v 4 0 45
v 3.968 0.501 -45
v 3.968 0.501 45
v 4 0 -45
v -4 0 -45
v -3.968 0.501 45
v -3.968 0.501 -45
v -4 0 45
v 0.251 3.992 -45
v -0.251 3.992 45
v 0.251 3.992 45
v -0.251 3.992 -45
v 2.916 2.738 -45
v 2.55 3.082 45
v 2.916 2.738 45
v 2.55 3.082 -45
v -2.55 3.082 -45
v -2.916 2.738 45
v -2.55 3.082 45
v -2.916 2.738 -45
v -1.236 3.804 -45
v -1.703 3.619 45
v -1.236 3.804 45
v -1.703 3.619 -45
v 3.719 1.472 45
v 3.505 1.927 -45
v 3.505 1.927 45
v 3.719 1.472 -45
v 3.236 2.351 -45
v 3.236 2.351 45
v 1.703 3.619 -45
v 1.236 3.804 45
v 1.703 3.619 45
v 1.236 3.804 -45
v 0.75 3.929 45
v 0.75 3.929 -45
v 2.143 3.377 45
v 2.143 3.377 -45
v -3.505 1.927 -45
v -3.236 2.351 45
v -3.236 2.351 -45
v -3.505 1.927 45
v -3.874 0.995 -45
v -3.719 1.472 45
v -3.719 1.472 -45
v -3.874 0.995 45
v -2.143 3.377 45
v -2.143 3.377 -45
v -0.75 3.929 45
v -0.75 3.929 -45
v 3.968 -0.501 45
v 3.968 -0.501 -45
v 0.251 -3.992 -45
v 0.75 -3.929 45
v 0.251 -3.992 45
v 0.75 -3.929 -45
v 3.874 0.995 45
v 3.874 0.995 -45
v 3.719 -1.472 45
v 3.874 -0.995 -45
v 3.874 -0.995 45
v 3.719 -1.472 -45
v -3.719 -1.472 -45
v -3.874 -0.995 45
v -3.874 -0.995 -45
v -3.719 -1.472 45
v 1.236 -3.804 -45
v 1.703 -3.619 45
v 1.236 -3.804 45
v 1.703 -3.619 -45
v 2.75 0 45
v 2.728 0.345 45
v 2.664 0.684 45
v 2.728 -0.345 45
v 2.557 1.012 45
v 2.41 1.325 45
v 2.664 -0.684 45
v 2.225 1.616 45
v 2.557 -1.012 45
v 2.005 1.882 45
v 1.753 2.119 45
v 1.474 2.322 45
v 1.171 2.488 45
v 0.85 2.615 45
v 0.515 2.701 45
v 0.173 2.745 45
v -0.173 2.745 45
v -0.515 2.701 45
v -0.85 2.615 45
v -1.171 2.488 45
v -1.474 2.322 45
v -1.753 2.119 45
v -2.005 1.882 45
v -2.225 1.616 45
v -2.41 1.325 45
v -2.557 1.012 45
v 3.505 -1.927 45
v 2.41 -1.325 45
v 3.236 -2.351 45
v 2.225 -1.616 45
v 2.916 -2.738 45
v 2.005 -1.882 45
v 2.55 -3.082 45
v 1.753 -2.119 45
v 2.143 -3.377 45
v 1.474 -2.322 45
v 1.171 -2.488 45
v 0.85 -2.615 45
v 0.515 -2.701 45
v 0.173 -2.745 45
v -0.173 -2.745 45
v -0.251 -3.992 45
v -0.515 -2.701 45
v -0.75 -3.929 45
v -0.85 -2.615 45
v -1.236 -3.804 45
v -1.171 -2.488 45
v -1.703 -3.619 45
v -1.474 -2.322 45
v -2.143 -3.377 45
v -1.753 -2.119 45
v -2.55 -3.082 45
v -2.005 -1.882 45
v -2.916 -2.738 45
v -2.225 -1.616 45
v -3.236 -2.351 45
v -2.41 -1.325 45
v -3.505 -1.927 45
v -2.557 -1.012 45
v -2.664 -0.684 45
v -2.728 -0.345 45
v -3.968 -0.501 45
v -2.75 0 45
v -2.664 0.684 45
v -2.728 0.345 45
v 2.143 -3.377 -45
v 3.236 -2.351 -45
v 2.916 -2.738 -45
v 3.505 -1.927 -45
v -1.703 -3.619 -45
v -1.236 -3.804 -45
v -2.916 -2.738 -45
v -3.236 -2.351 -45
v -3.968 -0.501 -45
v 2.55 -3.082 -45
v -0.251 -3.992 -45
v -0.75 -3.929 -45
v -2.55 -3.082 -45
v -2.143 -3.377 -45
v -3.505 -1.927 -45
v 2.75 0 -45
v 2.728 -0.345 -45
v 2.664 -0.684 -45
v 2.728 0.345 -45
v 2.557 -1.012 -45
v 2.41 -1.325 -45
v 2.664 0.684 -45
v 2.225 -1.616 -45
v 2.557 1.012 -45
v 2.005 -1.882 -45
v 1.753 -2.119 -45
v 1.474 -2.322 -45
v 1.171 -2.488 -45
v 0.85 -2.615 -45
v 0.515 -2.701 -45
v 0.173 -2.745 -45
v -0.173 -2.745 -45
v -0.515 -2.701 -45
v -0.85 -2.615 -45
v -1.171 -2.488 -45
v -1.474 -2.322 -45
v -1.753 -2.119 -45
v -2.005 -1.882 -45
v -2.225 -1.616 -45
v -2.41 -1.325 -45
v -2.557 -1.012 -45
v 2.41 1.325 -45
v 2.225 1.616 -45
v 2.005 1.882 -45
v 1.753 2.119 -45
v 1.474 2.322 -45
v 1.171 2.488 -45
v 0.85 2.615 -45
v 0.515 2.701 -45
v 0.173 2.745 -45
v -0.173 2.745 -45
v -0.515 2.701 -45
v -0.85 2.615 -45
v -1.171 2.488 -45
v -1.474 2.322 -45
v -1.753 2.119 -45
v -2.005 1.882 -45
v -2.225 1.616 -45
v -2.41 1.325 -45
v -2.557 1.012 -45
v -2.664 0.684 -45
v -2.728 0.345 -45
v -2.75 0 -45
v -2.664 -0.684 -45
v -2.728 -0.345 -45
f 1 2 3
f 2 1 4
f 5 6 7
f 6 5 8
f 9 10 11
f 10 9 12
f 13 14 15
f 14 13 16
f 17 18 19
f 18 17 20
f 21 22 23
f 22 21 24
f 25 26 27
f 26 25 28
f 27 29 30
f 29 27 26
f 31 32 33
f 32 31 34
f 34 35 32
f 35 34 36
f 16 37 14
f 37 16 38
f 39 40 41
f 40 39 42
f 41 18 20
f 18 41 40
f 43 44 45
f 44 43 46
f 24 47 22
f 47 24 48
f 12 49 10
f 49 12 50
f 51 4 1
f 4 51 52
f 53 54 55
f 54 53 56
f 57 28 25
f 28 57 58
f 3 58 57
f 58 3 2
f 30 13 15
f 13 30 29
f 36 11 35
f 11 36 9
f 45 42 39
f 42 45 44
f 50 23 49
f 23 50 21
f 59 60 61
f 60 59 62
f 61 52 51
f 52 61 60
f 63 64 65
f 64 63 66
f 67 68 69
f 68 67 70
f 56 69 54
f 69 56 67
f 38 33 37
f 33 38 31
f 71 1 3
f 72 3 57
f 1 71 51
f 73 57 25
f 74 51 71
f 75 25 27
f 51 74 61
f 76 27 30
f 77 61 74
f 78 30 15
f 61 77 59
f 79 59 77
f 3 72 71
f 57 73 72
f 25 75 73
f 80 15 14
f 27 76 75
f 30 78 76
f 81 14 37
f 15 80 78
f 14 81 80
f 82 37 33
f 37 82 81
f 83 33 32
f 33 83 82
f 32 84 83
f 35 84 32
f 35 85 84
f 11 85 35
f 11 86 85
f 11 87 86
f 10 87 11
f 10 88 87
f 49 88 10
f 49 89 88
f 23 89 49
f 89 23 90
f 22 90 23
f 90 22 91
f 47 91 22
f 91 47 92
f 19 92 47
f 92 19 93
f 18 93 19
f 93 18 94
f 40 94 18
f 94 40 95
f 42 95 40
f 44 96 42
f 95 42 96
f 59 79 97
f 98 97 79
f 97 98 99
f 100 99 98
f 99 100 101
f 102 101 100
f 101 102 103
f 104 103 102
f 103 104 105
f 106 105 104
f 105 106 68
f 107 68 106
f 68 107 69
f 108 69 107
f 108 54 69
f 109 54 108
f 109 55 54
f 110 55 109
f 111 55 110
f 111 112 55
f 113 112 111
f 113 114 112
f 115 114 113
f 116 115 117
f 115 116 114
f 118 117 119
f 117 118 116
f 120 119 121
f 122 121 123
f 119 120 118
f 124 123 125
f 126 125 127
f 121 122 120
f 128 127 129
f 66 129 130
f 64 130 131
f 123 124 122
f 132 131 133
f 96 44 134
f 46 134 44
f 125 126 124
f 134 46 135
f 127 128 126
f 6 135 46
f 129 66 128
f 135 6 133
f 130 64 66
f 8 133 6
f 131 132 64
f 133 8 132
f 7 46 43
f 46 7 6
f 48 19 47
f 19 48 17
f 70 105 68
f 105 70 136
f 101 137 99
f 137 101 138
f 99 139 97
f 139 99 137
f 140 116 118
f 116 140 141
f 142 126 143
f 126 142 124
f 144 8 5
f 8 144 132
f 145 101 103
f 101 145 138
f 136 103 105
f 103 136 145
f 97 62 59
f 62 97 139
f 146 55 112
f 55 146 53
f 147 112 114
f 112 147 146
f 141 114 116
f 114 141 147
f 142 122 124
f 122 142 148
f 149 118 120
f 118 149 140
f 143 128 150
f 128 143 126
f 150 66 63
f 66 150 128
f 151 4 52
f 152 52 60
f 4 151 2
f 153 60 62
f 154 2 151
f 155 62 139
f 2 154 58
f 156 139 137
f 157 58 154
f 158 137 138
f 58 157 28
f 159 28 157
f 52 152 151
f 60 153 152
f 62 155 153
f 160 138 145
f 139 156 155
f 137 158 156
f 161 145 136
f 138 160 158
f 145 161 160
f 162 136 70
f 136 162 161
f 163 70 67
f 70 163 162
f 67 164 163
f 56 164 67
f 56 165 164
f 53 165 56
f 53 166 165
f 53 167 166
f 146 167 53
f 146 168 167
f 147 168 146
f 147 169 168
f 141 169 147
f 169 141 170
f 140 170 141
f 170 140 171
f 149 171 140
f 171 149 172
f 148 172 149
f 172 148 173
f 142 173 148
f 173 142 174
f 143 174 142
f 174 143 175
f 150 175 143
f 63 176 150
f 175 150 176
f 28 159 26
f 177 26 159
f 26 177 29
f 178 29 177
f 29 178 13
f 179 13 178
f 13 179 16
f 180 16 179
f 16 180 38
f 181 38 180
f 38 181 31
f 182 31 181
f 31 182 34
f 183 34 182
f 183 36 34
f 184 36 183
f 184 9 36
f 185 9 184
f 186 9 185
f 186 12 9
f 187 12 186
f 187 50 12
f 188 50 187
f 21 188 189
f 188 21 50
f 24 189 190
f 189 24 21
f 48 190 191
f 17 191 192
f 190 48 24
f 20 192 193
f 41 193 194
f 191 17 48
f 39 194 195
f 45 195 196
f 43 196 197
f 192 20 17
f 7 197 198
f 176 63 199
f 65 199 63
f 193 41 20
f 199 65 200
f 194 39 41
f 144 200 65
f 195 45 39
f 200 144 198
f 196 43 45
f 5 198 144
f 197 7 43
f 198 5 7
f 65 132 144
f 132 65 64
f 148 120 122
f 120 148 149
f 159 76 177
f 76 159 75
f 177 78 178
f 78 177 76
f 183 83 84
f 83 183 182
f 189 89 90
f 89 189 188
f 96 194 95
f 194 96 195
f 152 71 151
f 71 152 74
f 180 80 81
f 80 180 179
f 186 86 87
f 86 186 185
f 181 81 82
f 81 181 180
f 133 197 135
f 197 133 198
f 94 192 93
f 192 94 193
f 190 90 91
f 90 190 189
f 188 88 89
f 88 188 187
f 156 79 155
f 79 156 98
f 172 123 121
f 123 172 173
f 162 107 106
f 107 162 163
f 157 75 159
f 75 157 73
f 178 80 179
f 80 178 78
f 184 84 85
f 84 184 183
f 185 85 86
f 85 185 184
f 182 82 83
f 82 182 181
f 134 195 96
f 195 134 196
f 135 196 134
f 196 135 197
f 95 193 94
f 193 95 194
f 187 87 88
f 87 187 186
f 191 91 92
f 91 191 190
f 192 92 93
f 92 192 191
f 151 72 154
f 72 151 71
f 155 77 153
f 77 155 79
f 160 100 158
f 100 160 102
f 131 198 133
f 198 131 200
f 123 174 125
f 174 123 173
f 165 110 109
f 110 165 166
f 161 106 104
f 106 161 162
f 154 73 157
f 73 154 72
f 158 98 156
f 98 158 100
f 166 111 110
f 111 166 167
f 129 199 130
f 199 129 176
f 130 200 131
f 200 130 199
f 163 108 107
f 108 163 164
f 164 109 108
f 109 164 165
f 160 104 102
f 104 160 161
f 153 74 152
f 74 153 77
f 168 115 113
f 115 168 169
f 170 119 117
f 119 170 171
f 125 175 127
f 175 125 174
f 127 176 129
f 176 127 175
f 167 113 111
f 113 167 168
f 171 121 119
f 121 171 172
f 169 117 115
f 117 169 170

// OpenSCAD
$fn = 50;


difference() {
	union() {
		translate(v = [0, 0, -45.0000000000]) {
			cylinder(h = 90, r = 4.0000000000);
		}
	}
	union() {
		translate(v = [0, 0, -100.0000000000]) {
			cylinder(h = 200, r = 2.7500000000);
		}
	}
}
